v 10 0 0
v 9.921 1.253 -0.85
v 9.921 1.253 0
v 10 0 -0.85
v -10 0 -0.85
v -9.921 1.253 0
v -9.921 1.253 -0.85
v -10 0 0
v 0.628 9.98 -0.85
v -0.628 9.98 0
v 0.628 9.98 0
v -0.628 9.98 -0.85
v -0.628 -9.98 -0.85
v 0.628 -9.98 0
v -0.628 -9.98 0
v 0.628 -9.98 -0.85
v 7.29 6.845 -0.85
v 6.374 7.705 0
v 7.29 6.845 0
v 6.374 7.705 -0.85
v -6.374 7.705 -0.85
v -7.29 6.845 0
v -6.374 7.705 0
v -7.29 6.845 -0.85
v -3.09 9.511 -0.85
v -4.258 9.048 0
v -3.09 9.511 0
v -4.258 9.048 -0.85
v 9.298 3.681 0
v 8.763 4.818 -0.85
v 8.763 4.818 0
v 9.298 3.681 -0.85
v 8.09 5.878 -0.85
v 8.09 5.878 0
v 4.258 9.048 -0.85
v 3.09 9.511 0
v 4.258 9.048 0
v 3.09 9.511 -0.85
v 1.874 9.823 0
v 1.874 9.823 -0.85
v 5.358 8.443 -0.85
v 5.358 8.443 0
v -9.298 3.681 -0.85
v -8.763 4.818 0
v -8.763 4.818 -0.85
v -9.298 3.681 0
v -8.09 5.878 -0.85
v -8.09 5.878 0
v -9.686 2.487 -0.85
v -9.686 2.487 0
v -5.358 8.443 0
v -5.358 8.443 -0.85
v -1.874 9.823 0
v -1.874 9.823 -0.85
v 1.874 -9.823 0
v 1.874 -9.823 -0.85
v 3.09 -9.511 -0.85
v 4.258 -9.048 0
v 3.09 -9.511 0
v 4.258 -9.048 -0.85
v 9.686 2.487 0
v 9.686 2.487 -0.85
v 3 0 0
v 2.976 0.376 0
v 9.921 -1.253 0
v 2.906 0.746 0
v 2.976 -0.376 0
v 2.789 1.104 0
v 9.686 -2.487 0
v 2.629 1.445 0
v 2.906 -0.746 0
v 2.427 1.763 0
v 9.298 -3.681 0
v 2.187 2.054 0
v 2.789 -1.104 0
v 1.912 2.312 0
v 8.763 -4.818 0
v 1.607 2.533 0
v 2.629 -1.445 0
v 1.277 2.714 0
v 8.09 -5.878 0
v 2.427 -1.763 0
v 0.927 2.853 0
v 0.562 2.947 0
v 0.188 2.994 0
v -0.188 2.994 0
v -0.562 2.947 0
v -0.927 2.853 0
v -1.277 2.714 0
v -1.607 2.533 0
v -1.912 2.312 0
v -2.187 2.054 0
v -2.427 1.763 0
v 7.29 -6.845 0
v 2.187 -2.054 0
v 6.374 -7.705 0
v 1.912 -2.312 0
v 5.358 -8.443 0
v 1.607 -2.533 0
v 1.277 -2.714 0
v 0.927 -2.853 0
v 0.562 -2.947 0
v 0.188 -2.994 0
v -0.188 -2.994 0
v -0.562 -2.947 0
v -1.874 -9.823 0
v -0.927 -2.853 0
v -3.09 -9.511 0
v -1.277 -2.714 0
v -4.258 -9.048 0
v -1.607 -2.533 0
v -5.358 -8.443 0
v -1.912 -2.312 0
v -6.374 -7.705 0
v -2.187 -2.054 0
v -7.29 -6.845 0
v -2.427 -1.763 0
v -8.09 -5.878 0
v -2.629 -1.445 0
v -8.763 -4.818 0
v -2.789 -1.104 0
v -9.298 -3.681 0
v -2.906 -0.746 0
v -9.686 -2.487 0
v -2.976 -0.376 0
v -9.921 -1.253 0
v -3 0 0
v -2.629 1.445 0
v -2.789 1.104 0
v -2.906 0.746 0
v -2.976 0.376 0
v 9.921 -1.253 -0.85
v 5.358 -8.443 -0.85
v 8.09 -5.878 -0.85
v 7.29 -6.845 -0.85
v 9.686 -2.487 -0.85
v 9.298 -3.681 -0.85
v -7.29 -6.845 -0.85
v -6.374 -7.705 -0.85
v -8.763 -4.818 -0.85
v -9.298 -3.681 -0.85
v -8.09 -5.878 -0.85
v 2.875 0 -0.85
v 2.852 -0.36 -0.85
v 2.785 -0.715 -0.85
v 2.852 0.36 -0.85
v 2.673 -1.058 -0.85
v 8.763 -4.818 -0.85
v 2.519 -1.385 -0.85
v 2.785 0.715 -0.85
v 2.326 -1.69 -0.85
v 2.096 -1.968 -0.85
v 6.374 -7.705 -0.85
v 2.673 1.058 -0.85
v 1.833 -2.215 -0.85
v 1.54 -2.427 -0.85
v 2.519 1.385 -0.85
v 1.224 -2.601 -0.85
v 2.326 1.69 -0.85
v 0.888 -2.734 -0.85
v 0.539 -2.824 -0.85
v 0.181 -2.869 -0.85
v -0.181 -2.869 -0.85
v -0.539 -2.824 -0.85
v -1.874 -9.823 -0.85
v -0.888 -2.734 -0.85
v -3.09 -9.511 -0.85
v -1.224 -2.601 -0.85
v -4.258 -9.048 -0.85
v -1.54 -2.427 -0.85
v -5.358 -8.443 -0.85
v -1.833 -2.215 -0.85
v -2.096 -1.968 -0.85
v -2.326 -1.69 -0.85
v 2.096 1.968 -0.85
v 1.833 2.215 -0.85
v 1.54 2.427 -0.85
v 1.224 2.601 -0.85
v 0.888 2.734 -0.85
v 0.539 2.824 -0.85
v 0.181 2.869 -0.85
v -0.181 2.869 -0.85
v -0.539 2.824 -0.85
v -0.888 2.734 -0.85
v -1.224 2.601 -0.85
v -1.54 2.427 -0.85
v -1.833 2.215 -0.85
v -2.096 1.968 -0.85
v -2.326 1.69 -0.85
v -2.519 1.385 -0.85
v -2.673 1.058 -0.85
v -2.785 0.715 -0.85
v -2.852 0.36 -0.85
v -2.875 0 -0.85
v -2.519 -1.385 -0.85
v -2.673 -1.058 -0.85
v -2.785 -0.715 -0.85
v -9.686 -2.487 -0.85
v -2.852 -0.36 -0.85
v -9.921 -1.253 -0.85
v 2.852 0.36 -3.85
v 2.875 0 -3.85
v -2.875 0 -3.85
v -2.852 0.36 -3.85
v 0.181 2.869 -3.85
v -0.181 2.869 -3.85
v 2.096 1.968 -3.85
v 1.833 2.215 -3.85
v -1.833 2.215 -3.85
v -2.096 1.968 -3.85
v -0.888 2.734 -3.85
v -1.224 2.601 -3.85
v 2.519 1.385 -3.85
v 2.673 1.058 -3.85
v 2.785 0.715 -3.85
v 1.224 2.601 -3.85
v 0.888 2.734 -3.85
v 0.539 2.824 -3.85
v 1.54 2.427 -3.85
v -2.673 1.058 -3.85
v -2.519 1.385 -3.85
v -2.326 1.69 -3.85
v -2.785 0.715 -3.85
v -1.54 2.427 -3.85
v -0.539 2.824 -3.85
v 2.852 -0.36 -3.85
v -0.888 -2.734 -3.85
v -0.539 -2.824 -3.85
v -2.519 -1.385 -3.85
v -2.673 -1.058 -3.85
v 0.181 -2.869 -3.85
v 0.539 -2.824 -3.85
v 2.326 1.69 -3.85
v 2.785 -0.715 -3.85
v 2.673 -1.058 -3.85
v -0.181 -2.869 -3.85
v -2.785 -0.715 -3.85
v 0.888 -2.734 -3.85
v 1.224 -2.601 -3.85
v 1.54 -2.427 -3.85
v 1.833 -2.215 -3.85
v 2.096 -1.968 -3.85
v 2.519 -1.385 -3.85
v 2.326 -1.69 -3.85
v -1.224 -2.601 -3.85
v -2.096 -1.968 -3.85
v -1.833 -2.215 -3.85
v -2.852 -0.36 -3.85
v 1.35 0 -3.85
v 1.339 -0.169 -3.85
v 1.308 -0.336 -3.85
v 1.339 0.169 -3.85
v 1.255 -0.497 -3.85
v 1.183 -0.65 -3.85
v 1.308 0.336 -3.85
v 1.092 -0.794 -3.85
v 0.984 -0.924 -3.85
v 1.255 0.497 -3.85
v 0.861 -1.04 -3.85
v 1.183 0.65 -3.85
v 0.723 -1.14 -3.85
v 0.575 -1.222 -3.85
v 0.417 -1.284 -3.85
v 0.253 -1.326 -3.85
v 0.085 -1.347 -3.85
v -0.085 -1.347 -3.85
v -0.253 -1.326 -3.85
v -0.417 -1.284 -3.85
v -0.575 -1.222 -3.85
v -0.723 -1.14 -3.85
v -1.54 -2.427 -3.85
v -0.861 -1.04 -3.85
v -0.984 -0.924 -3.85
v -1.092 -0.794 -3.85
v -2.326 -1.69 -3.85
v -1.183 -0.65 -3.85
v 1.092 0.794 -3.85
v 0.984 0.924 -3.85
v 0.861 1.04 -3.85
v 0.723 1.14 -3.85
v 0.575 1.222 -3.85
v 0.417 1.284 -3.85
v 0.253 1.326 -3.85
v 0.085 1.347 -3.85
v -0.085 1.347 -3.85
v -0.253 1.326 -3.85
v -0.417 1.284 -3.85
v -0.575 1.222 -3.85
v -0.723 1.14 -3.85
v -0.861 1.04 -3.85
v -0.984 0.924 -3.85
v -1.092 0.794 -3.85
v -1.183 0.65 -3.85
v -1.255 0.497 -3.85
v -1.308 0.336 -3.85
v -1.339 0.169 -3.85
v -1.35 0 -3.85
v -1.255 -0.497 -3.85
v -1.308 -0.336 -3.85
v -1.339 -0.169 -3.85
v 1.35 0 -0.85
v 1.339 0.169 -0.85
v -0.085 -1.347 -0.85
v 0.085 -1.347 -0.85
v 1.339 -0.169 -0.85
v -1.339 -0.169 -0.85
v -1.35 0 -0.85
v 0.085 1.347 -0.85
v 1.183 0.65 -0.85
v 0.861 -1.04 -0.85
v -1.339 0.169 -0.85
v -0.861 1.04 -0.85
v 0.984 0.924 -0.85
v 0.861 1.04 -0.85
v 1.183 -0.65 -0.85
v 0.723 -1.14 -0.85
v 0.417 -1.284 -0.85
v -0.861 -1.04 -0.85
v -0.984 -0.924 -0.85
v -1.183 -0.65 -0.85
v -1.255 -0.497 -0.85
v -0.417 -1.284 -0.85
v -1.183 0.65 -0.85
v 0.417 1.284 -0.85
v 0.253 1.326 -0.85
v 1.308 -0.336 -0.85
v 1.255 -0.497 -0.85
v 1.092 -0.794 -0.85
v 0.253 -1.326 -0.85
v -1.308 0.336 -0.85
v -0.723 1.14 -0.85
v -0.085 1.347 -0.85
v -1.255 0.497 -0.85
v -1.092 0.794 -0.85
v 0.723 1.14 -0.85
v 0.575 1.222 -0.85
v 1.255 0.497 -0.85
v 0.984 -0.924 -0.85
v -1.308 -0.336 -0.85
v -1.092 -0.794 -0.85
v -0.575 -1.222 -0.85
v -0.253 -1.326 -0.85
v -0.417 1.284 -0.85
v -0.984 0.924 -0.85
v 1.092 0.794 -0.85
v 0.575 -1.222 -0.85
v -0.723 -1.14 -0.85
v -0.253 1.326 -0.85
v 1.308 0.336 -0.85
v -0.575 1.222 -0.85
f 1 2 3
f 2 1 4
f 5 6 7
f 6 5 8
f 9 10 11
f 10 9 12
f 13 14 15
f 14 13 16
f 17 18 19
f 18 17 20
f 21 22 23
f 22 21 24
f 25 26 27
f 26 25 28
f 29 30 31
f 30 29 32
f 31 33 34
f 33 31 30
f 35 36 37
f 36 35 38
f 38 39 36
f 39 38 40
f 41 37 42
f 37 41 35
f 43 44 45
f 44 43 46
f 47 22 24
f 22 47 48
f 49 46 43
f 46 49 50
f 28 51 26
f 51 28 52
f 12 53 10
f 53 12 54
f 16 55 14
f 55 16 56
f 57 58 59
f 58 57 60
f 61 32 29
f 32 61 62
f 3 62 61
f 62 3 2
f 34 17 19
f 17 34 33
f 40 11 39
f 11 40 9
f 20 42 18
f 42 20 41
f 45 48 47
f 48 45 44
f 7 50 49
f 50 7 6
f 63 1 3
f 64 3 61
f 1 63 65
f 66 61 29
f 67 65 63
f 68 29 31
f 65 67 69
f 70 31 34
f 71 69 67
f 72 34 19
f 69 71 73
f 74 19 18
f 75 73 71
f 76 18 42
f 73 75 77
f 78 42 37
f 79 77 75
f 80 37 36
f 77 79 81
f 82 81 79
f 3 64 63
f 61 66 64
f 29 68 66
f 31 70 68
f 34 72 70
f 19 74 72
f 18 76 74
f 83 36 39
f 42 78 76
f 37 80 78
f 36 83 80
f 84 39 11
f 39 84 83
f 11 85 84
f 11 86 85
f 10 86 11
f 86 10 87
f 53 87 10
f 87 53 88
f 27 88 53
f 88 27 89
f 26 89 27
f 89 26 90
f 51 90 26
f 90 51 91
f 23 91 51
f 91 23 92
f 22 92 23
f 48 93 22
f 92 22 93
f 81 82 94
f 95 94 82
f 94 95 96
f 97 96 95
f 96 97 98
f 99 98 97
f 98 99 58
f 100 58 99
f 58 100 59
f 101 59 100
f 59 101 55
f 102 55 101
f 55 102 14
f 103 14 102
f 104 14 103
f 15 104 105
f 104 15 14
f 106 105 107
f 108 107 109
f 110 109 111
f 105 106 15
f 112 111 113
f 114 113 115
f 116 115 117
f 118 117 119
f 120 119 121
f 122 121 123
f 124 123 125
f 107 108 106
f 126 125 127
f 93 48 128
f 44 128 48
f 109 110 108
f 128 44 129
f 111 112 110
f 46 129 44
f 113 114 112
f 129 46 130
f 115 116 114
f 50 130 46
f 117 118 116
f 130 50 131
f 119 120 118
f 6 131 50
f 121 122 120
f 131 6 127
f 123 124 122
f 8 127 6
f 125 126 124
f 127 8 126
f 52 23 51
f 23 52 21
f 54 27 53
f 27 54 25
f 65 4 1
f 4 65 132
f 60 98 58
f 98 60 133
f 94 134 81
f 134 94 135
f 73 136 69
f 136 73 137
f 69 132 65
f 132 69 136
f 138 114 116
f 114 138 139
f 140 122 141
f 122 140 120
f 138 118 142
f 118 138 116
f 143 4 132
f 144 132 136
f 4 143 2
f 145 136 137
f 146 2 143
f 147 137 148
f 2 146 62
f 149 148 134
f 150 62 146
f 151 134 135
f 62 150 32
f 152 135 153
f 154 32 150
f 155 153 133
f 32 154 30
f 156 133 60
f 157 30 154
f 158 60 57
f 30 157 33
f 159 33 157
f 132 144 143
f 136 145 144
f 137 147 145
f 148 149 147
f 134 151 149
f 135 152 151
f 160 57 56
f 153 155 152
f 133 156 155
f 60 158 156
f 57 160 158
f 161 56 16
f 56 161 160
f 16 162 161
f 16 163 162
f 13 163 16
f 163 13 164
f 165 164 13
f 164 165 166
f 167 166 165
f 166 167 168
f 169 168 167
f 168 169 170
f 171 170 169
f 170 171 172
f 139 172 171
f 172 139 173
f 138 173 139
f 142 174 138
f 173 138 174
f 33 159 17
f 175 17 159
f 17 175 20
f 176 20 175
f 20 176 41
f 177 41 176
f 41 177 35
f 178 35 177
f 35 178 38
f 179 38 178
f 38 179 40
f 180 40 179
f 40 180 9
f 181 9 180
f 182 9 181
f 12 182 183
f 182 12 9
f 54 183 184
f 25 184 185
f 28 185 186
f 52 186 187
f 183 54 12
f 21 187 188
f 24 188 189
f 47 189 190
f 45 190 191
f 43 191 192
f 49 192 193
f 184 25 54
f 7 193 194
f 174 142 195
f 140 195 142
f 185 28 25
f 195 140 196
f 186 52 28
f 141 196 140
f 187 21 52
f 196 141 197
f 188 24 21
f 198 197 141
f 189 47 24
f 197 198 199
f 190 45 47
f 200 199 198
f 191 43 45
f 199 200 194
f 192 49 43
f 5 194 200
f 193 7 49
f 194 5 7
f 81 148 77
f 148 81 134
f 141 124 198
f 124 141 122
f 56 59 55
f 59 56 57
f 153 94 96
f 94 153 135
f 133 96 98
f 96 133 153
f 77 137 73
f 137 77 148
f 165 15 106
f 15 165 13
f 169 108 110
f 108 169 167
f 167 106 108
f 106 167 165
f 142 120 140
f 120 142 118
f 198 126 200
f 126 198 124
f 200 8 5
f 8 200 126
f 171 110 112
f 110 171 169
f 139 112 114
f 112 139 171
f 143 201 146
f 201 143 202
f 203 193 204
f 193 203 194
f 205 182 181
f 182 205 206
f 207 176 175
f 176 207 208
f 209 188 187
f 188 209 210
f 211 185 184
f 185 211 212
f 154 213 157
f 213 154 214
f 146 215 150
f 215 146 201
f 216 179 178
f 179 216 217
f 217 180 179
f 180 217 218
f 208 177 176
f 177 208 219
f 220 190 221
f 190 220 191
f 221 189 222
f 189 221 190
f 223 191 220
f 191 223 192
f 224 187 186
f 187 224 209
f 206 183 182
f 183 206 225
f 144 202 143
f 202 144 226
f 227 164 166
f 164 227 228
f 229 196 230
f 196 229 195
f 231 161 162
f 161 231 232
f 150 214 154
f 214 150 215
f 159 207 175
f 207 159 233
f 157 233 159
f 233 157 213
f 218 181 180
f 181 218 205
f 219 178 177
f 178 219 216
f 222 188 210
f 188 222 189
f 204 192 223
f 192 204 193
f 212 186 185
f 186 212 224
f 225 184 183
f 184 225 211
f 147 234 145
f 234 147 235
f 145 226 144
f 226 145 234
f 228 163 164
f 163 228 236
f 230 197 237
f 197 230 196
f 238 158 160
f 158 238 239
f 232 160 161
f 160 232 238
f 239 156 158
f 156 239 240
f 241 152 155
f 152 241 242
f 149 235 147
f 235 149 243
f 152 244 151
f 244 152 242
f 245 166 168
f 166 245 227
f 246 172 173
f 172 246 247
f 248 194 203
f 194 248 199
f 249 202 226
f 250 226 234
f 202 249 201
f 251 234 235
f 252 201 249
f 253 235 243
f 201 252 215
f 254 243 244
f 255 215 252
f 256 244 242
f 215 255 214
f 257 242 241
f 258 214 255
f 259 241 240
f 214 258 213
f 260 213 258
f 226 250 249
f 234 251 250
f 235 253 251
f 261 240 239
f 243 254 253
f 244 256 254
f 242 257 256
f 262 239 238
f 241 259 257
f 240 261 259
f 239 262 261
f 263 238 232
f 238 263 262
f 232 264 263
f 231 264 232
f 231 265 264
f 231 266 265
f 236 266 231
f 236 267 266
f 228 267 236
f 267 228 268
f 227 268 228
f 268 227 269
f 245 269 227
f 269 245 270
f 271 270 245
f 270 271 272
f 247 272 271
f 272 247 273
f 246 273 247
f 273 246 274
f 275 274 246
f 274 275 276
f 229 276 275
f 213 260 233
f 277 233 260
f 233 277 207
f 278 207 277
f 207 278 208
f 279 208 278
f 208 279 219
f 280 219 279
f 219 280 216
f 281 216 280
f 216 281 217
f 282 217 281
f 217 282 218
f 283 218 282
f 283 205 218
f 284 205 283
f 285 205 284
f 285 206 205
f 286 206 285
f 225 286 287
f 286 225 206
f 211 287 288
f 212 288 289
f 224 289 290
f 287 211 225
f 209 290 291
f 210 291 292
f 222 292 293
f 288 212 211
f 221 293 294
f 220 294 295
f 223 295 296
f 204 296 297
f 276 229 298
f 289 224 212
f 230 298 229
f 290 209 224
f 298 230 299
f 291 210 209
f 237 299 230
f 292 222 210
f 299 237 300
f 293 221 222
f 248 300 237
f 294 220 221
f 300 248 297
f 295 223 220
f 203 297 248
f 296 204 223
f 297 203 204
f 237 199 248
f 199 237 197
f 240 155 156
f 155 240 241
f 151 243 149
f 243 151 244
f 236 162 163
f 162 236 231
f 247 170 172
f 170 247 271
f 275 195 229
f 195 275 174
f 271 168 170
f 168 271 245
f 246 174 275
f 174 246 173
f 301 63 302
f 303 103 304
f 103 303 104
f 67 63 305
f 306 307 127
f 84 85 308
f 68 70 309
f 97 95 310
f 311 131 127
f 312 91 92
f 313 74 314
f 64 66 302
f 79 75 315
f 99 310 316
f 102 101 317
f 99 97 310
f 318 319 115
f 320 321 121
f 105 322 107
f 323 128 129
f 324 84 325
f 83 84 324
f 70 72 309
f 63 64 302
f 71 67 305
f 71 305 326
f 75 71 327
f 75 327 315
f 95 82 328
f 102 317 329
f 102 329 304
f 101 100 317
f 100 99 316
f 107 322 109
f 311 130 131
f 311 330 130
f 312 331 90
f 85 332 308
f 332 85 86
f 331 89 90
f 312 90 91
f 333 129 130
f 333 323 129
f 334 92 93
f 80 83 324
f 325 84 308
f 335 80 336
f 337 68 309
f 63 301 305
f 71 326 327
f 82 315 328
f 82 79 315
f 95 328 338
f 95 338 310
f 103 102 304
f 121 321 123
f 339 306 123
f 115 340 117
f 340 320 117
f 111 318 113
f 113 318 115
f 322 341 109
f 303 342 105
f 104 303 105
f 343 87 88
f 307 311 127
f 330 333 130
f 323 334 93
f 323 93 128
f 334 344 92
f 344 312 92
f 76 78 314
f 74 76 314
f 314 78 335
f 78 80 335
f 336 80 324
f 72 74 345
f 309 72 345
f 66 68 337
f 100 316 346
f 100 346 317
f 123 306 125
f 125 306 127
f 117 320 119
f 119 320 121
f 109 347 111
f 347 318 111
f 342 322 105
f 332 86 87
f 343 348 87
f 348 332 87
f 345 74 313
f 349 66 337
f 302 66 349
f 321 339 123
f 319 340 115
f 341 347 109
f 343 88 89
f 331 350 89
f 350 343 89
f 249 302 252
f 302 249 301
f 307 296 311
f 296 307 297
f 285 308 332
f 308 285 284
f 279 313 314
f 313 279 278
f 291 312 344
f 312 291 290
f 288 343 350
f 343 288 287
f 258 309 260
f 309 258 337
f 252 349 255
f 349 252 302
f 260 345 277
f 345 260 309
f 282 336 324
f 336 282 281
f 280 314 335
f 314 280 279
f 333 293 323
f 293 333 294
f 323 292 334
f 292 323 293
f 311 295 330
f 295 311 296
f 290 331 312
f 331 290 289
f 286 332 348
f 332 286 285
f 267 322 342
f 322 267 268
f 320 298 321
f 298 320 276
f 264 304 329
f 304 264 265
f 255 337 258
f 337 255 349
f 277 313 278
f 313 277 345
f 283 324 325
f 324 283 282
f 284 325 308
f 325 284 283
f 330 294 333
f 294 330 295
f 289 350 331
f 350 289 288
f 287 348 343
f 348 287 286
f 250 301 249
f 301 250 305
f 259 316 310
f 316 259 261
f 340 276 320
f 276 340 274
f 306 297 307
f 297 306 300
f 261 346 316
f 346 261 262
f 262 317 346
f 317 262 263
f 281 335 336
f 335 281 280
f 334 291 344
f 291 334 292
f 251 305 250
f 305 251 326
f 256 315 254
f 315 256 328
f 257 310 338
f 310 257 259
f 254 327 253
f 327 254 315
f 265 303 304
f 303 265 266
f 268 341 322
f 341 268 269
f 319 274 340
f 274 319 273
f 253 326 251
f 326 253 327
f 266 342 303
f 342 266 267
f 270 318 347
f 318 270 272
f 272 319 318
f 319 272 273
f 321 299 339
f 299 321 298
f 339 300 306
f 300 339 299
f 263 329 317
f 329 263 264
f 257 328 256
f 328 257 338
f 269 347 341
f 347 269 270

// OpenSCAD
$fn = 50;


difference() {
	union() {
		translate(v = [0, 0, -0.8500000000]) {
			cylinder(h = 0.8500000000, r = 10.0000000000);
		}
		#translate(v = [0, 0, -3.8500000000]) {
			cylinder(h = 3.8500000000, r = 2.8750000000);
		}
	}
	union() {
		translate(v = [0, 0, 0]) {
			rotate(a = [0, 0, 0]) {
				difference() {
					union() {
						translate(v = [0, 0, -3.8500000000]) {
							cylinder(h = 3.8500000000, r = 1.0000000000);
						}
						translate(v = [0, 0, -0.8500000000]) {
							cylinder(h = 0.8500000000, r1 = 1.3500000000, r2 = 3.0000000000);
						}
						translate(v = [0, 0, -3.8500000000]) {
							cylinder(h = 3.8500000000, r = 1.3500000000);
						}
						translate(v = [0, 0, -3.8500000000]) {
							cylinder(h = 3.8500000000, r = 1.0000000000);
						}
					}
					union();
				}
			}
		}
	}
}
